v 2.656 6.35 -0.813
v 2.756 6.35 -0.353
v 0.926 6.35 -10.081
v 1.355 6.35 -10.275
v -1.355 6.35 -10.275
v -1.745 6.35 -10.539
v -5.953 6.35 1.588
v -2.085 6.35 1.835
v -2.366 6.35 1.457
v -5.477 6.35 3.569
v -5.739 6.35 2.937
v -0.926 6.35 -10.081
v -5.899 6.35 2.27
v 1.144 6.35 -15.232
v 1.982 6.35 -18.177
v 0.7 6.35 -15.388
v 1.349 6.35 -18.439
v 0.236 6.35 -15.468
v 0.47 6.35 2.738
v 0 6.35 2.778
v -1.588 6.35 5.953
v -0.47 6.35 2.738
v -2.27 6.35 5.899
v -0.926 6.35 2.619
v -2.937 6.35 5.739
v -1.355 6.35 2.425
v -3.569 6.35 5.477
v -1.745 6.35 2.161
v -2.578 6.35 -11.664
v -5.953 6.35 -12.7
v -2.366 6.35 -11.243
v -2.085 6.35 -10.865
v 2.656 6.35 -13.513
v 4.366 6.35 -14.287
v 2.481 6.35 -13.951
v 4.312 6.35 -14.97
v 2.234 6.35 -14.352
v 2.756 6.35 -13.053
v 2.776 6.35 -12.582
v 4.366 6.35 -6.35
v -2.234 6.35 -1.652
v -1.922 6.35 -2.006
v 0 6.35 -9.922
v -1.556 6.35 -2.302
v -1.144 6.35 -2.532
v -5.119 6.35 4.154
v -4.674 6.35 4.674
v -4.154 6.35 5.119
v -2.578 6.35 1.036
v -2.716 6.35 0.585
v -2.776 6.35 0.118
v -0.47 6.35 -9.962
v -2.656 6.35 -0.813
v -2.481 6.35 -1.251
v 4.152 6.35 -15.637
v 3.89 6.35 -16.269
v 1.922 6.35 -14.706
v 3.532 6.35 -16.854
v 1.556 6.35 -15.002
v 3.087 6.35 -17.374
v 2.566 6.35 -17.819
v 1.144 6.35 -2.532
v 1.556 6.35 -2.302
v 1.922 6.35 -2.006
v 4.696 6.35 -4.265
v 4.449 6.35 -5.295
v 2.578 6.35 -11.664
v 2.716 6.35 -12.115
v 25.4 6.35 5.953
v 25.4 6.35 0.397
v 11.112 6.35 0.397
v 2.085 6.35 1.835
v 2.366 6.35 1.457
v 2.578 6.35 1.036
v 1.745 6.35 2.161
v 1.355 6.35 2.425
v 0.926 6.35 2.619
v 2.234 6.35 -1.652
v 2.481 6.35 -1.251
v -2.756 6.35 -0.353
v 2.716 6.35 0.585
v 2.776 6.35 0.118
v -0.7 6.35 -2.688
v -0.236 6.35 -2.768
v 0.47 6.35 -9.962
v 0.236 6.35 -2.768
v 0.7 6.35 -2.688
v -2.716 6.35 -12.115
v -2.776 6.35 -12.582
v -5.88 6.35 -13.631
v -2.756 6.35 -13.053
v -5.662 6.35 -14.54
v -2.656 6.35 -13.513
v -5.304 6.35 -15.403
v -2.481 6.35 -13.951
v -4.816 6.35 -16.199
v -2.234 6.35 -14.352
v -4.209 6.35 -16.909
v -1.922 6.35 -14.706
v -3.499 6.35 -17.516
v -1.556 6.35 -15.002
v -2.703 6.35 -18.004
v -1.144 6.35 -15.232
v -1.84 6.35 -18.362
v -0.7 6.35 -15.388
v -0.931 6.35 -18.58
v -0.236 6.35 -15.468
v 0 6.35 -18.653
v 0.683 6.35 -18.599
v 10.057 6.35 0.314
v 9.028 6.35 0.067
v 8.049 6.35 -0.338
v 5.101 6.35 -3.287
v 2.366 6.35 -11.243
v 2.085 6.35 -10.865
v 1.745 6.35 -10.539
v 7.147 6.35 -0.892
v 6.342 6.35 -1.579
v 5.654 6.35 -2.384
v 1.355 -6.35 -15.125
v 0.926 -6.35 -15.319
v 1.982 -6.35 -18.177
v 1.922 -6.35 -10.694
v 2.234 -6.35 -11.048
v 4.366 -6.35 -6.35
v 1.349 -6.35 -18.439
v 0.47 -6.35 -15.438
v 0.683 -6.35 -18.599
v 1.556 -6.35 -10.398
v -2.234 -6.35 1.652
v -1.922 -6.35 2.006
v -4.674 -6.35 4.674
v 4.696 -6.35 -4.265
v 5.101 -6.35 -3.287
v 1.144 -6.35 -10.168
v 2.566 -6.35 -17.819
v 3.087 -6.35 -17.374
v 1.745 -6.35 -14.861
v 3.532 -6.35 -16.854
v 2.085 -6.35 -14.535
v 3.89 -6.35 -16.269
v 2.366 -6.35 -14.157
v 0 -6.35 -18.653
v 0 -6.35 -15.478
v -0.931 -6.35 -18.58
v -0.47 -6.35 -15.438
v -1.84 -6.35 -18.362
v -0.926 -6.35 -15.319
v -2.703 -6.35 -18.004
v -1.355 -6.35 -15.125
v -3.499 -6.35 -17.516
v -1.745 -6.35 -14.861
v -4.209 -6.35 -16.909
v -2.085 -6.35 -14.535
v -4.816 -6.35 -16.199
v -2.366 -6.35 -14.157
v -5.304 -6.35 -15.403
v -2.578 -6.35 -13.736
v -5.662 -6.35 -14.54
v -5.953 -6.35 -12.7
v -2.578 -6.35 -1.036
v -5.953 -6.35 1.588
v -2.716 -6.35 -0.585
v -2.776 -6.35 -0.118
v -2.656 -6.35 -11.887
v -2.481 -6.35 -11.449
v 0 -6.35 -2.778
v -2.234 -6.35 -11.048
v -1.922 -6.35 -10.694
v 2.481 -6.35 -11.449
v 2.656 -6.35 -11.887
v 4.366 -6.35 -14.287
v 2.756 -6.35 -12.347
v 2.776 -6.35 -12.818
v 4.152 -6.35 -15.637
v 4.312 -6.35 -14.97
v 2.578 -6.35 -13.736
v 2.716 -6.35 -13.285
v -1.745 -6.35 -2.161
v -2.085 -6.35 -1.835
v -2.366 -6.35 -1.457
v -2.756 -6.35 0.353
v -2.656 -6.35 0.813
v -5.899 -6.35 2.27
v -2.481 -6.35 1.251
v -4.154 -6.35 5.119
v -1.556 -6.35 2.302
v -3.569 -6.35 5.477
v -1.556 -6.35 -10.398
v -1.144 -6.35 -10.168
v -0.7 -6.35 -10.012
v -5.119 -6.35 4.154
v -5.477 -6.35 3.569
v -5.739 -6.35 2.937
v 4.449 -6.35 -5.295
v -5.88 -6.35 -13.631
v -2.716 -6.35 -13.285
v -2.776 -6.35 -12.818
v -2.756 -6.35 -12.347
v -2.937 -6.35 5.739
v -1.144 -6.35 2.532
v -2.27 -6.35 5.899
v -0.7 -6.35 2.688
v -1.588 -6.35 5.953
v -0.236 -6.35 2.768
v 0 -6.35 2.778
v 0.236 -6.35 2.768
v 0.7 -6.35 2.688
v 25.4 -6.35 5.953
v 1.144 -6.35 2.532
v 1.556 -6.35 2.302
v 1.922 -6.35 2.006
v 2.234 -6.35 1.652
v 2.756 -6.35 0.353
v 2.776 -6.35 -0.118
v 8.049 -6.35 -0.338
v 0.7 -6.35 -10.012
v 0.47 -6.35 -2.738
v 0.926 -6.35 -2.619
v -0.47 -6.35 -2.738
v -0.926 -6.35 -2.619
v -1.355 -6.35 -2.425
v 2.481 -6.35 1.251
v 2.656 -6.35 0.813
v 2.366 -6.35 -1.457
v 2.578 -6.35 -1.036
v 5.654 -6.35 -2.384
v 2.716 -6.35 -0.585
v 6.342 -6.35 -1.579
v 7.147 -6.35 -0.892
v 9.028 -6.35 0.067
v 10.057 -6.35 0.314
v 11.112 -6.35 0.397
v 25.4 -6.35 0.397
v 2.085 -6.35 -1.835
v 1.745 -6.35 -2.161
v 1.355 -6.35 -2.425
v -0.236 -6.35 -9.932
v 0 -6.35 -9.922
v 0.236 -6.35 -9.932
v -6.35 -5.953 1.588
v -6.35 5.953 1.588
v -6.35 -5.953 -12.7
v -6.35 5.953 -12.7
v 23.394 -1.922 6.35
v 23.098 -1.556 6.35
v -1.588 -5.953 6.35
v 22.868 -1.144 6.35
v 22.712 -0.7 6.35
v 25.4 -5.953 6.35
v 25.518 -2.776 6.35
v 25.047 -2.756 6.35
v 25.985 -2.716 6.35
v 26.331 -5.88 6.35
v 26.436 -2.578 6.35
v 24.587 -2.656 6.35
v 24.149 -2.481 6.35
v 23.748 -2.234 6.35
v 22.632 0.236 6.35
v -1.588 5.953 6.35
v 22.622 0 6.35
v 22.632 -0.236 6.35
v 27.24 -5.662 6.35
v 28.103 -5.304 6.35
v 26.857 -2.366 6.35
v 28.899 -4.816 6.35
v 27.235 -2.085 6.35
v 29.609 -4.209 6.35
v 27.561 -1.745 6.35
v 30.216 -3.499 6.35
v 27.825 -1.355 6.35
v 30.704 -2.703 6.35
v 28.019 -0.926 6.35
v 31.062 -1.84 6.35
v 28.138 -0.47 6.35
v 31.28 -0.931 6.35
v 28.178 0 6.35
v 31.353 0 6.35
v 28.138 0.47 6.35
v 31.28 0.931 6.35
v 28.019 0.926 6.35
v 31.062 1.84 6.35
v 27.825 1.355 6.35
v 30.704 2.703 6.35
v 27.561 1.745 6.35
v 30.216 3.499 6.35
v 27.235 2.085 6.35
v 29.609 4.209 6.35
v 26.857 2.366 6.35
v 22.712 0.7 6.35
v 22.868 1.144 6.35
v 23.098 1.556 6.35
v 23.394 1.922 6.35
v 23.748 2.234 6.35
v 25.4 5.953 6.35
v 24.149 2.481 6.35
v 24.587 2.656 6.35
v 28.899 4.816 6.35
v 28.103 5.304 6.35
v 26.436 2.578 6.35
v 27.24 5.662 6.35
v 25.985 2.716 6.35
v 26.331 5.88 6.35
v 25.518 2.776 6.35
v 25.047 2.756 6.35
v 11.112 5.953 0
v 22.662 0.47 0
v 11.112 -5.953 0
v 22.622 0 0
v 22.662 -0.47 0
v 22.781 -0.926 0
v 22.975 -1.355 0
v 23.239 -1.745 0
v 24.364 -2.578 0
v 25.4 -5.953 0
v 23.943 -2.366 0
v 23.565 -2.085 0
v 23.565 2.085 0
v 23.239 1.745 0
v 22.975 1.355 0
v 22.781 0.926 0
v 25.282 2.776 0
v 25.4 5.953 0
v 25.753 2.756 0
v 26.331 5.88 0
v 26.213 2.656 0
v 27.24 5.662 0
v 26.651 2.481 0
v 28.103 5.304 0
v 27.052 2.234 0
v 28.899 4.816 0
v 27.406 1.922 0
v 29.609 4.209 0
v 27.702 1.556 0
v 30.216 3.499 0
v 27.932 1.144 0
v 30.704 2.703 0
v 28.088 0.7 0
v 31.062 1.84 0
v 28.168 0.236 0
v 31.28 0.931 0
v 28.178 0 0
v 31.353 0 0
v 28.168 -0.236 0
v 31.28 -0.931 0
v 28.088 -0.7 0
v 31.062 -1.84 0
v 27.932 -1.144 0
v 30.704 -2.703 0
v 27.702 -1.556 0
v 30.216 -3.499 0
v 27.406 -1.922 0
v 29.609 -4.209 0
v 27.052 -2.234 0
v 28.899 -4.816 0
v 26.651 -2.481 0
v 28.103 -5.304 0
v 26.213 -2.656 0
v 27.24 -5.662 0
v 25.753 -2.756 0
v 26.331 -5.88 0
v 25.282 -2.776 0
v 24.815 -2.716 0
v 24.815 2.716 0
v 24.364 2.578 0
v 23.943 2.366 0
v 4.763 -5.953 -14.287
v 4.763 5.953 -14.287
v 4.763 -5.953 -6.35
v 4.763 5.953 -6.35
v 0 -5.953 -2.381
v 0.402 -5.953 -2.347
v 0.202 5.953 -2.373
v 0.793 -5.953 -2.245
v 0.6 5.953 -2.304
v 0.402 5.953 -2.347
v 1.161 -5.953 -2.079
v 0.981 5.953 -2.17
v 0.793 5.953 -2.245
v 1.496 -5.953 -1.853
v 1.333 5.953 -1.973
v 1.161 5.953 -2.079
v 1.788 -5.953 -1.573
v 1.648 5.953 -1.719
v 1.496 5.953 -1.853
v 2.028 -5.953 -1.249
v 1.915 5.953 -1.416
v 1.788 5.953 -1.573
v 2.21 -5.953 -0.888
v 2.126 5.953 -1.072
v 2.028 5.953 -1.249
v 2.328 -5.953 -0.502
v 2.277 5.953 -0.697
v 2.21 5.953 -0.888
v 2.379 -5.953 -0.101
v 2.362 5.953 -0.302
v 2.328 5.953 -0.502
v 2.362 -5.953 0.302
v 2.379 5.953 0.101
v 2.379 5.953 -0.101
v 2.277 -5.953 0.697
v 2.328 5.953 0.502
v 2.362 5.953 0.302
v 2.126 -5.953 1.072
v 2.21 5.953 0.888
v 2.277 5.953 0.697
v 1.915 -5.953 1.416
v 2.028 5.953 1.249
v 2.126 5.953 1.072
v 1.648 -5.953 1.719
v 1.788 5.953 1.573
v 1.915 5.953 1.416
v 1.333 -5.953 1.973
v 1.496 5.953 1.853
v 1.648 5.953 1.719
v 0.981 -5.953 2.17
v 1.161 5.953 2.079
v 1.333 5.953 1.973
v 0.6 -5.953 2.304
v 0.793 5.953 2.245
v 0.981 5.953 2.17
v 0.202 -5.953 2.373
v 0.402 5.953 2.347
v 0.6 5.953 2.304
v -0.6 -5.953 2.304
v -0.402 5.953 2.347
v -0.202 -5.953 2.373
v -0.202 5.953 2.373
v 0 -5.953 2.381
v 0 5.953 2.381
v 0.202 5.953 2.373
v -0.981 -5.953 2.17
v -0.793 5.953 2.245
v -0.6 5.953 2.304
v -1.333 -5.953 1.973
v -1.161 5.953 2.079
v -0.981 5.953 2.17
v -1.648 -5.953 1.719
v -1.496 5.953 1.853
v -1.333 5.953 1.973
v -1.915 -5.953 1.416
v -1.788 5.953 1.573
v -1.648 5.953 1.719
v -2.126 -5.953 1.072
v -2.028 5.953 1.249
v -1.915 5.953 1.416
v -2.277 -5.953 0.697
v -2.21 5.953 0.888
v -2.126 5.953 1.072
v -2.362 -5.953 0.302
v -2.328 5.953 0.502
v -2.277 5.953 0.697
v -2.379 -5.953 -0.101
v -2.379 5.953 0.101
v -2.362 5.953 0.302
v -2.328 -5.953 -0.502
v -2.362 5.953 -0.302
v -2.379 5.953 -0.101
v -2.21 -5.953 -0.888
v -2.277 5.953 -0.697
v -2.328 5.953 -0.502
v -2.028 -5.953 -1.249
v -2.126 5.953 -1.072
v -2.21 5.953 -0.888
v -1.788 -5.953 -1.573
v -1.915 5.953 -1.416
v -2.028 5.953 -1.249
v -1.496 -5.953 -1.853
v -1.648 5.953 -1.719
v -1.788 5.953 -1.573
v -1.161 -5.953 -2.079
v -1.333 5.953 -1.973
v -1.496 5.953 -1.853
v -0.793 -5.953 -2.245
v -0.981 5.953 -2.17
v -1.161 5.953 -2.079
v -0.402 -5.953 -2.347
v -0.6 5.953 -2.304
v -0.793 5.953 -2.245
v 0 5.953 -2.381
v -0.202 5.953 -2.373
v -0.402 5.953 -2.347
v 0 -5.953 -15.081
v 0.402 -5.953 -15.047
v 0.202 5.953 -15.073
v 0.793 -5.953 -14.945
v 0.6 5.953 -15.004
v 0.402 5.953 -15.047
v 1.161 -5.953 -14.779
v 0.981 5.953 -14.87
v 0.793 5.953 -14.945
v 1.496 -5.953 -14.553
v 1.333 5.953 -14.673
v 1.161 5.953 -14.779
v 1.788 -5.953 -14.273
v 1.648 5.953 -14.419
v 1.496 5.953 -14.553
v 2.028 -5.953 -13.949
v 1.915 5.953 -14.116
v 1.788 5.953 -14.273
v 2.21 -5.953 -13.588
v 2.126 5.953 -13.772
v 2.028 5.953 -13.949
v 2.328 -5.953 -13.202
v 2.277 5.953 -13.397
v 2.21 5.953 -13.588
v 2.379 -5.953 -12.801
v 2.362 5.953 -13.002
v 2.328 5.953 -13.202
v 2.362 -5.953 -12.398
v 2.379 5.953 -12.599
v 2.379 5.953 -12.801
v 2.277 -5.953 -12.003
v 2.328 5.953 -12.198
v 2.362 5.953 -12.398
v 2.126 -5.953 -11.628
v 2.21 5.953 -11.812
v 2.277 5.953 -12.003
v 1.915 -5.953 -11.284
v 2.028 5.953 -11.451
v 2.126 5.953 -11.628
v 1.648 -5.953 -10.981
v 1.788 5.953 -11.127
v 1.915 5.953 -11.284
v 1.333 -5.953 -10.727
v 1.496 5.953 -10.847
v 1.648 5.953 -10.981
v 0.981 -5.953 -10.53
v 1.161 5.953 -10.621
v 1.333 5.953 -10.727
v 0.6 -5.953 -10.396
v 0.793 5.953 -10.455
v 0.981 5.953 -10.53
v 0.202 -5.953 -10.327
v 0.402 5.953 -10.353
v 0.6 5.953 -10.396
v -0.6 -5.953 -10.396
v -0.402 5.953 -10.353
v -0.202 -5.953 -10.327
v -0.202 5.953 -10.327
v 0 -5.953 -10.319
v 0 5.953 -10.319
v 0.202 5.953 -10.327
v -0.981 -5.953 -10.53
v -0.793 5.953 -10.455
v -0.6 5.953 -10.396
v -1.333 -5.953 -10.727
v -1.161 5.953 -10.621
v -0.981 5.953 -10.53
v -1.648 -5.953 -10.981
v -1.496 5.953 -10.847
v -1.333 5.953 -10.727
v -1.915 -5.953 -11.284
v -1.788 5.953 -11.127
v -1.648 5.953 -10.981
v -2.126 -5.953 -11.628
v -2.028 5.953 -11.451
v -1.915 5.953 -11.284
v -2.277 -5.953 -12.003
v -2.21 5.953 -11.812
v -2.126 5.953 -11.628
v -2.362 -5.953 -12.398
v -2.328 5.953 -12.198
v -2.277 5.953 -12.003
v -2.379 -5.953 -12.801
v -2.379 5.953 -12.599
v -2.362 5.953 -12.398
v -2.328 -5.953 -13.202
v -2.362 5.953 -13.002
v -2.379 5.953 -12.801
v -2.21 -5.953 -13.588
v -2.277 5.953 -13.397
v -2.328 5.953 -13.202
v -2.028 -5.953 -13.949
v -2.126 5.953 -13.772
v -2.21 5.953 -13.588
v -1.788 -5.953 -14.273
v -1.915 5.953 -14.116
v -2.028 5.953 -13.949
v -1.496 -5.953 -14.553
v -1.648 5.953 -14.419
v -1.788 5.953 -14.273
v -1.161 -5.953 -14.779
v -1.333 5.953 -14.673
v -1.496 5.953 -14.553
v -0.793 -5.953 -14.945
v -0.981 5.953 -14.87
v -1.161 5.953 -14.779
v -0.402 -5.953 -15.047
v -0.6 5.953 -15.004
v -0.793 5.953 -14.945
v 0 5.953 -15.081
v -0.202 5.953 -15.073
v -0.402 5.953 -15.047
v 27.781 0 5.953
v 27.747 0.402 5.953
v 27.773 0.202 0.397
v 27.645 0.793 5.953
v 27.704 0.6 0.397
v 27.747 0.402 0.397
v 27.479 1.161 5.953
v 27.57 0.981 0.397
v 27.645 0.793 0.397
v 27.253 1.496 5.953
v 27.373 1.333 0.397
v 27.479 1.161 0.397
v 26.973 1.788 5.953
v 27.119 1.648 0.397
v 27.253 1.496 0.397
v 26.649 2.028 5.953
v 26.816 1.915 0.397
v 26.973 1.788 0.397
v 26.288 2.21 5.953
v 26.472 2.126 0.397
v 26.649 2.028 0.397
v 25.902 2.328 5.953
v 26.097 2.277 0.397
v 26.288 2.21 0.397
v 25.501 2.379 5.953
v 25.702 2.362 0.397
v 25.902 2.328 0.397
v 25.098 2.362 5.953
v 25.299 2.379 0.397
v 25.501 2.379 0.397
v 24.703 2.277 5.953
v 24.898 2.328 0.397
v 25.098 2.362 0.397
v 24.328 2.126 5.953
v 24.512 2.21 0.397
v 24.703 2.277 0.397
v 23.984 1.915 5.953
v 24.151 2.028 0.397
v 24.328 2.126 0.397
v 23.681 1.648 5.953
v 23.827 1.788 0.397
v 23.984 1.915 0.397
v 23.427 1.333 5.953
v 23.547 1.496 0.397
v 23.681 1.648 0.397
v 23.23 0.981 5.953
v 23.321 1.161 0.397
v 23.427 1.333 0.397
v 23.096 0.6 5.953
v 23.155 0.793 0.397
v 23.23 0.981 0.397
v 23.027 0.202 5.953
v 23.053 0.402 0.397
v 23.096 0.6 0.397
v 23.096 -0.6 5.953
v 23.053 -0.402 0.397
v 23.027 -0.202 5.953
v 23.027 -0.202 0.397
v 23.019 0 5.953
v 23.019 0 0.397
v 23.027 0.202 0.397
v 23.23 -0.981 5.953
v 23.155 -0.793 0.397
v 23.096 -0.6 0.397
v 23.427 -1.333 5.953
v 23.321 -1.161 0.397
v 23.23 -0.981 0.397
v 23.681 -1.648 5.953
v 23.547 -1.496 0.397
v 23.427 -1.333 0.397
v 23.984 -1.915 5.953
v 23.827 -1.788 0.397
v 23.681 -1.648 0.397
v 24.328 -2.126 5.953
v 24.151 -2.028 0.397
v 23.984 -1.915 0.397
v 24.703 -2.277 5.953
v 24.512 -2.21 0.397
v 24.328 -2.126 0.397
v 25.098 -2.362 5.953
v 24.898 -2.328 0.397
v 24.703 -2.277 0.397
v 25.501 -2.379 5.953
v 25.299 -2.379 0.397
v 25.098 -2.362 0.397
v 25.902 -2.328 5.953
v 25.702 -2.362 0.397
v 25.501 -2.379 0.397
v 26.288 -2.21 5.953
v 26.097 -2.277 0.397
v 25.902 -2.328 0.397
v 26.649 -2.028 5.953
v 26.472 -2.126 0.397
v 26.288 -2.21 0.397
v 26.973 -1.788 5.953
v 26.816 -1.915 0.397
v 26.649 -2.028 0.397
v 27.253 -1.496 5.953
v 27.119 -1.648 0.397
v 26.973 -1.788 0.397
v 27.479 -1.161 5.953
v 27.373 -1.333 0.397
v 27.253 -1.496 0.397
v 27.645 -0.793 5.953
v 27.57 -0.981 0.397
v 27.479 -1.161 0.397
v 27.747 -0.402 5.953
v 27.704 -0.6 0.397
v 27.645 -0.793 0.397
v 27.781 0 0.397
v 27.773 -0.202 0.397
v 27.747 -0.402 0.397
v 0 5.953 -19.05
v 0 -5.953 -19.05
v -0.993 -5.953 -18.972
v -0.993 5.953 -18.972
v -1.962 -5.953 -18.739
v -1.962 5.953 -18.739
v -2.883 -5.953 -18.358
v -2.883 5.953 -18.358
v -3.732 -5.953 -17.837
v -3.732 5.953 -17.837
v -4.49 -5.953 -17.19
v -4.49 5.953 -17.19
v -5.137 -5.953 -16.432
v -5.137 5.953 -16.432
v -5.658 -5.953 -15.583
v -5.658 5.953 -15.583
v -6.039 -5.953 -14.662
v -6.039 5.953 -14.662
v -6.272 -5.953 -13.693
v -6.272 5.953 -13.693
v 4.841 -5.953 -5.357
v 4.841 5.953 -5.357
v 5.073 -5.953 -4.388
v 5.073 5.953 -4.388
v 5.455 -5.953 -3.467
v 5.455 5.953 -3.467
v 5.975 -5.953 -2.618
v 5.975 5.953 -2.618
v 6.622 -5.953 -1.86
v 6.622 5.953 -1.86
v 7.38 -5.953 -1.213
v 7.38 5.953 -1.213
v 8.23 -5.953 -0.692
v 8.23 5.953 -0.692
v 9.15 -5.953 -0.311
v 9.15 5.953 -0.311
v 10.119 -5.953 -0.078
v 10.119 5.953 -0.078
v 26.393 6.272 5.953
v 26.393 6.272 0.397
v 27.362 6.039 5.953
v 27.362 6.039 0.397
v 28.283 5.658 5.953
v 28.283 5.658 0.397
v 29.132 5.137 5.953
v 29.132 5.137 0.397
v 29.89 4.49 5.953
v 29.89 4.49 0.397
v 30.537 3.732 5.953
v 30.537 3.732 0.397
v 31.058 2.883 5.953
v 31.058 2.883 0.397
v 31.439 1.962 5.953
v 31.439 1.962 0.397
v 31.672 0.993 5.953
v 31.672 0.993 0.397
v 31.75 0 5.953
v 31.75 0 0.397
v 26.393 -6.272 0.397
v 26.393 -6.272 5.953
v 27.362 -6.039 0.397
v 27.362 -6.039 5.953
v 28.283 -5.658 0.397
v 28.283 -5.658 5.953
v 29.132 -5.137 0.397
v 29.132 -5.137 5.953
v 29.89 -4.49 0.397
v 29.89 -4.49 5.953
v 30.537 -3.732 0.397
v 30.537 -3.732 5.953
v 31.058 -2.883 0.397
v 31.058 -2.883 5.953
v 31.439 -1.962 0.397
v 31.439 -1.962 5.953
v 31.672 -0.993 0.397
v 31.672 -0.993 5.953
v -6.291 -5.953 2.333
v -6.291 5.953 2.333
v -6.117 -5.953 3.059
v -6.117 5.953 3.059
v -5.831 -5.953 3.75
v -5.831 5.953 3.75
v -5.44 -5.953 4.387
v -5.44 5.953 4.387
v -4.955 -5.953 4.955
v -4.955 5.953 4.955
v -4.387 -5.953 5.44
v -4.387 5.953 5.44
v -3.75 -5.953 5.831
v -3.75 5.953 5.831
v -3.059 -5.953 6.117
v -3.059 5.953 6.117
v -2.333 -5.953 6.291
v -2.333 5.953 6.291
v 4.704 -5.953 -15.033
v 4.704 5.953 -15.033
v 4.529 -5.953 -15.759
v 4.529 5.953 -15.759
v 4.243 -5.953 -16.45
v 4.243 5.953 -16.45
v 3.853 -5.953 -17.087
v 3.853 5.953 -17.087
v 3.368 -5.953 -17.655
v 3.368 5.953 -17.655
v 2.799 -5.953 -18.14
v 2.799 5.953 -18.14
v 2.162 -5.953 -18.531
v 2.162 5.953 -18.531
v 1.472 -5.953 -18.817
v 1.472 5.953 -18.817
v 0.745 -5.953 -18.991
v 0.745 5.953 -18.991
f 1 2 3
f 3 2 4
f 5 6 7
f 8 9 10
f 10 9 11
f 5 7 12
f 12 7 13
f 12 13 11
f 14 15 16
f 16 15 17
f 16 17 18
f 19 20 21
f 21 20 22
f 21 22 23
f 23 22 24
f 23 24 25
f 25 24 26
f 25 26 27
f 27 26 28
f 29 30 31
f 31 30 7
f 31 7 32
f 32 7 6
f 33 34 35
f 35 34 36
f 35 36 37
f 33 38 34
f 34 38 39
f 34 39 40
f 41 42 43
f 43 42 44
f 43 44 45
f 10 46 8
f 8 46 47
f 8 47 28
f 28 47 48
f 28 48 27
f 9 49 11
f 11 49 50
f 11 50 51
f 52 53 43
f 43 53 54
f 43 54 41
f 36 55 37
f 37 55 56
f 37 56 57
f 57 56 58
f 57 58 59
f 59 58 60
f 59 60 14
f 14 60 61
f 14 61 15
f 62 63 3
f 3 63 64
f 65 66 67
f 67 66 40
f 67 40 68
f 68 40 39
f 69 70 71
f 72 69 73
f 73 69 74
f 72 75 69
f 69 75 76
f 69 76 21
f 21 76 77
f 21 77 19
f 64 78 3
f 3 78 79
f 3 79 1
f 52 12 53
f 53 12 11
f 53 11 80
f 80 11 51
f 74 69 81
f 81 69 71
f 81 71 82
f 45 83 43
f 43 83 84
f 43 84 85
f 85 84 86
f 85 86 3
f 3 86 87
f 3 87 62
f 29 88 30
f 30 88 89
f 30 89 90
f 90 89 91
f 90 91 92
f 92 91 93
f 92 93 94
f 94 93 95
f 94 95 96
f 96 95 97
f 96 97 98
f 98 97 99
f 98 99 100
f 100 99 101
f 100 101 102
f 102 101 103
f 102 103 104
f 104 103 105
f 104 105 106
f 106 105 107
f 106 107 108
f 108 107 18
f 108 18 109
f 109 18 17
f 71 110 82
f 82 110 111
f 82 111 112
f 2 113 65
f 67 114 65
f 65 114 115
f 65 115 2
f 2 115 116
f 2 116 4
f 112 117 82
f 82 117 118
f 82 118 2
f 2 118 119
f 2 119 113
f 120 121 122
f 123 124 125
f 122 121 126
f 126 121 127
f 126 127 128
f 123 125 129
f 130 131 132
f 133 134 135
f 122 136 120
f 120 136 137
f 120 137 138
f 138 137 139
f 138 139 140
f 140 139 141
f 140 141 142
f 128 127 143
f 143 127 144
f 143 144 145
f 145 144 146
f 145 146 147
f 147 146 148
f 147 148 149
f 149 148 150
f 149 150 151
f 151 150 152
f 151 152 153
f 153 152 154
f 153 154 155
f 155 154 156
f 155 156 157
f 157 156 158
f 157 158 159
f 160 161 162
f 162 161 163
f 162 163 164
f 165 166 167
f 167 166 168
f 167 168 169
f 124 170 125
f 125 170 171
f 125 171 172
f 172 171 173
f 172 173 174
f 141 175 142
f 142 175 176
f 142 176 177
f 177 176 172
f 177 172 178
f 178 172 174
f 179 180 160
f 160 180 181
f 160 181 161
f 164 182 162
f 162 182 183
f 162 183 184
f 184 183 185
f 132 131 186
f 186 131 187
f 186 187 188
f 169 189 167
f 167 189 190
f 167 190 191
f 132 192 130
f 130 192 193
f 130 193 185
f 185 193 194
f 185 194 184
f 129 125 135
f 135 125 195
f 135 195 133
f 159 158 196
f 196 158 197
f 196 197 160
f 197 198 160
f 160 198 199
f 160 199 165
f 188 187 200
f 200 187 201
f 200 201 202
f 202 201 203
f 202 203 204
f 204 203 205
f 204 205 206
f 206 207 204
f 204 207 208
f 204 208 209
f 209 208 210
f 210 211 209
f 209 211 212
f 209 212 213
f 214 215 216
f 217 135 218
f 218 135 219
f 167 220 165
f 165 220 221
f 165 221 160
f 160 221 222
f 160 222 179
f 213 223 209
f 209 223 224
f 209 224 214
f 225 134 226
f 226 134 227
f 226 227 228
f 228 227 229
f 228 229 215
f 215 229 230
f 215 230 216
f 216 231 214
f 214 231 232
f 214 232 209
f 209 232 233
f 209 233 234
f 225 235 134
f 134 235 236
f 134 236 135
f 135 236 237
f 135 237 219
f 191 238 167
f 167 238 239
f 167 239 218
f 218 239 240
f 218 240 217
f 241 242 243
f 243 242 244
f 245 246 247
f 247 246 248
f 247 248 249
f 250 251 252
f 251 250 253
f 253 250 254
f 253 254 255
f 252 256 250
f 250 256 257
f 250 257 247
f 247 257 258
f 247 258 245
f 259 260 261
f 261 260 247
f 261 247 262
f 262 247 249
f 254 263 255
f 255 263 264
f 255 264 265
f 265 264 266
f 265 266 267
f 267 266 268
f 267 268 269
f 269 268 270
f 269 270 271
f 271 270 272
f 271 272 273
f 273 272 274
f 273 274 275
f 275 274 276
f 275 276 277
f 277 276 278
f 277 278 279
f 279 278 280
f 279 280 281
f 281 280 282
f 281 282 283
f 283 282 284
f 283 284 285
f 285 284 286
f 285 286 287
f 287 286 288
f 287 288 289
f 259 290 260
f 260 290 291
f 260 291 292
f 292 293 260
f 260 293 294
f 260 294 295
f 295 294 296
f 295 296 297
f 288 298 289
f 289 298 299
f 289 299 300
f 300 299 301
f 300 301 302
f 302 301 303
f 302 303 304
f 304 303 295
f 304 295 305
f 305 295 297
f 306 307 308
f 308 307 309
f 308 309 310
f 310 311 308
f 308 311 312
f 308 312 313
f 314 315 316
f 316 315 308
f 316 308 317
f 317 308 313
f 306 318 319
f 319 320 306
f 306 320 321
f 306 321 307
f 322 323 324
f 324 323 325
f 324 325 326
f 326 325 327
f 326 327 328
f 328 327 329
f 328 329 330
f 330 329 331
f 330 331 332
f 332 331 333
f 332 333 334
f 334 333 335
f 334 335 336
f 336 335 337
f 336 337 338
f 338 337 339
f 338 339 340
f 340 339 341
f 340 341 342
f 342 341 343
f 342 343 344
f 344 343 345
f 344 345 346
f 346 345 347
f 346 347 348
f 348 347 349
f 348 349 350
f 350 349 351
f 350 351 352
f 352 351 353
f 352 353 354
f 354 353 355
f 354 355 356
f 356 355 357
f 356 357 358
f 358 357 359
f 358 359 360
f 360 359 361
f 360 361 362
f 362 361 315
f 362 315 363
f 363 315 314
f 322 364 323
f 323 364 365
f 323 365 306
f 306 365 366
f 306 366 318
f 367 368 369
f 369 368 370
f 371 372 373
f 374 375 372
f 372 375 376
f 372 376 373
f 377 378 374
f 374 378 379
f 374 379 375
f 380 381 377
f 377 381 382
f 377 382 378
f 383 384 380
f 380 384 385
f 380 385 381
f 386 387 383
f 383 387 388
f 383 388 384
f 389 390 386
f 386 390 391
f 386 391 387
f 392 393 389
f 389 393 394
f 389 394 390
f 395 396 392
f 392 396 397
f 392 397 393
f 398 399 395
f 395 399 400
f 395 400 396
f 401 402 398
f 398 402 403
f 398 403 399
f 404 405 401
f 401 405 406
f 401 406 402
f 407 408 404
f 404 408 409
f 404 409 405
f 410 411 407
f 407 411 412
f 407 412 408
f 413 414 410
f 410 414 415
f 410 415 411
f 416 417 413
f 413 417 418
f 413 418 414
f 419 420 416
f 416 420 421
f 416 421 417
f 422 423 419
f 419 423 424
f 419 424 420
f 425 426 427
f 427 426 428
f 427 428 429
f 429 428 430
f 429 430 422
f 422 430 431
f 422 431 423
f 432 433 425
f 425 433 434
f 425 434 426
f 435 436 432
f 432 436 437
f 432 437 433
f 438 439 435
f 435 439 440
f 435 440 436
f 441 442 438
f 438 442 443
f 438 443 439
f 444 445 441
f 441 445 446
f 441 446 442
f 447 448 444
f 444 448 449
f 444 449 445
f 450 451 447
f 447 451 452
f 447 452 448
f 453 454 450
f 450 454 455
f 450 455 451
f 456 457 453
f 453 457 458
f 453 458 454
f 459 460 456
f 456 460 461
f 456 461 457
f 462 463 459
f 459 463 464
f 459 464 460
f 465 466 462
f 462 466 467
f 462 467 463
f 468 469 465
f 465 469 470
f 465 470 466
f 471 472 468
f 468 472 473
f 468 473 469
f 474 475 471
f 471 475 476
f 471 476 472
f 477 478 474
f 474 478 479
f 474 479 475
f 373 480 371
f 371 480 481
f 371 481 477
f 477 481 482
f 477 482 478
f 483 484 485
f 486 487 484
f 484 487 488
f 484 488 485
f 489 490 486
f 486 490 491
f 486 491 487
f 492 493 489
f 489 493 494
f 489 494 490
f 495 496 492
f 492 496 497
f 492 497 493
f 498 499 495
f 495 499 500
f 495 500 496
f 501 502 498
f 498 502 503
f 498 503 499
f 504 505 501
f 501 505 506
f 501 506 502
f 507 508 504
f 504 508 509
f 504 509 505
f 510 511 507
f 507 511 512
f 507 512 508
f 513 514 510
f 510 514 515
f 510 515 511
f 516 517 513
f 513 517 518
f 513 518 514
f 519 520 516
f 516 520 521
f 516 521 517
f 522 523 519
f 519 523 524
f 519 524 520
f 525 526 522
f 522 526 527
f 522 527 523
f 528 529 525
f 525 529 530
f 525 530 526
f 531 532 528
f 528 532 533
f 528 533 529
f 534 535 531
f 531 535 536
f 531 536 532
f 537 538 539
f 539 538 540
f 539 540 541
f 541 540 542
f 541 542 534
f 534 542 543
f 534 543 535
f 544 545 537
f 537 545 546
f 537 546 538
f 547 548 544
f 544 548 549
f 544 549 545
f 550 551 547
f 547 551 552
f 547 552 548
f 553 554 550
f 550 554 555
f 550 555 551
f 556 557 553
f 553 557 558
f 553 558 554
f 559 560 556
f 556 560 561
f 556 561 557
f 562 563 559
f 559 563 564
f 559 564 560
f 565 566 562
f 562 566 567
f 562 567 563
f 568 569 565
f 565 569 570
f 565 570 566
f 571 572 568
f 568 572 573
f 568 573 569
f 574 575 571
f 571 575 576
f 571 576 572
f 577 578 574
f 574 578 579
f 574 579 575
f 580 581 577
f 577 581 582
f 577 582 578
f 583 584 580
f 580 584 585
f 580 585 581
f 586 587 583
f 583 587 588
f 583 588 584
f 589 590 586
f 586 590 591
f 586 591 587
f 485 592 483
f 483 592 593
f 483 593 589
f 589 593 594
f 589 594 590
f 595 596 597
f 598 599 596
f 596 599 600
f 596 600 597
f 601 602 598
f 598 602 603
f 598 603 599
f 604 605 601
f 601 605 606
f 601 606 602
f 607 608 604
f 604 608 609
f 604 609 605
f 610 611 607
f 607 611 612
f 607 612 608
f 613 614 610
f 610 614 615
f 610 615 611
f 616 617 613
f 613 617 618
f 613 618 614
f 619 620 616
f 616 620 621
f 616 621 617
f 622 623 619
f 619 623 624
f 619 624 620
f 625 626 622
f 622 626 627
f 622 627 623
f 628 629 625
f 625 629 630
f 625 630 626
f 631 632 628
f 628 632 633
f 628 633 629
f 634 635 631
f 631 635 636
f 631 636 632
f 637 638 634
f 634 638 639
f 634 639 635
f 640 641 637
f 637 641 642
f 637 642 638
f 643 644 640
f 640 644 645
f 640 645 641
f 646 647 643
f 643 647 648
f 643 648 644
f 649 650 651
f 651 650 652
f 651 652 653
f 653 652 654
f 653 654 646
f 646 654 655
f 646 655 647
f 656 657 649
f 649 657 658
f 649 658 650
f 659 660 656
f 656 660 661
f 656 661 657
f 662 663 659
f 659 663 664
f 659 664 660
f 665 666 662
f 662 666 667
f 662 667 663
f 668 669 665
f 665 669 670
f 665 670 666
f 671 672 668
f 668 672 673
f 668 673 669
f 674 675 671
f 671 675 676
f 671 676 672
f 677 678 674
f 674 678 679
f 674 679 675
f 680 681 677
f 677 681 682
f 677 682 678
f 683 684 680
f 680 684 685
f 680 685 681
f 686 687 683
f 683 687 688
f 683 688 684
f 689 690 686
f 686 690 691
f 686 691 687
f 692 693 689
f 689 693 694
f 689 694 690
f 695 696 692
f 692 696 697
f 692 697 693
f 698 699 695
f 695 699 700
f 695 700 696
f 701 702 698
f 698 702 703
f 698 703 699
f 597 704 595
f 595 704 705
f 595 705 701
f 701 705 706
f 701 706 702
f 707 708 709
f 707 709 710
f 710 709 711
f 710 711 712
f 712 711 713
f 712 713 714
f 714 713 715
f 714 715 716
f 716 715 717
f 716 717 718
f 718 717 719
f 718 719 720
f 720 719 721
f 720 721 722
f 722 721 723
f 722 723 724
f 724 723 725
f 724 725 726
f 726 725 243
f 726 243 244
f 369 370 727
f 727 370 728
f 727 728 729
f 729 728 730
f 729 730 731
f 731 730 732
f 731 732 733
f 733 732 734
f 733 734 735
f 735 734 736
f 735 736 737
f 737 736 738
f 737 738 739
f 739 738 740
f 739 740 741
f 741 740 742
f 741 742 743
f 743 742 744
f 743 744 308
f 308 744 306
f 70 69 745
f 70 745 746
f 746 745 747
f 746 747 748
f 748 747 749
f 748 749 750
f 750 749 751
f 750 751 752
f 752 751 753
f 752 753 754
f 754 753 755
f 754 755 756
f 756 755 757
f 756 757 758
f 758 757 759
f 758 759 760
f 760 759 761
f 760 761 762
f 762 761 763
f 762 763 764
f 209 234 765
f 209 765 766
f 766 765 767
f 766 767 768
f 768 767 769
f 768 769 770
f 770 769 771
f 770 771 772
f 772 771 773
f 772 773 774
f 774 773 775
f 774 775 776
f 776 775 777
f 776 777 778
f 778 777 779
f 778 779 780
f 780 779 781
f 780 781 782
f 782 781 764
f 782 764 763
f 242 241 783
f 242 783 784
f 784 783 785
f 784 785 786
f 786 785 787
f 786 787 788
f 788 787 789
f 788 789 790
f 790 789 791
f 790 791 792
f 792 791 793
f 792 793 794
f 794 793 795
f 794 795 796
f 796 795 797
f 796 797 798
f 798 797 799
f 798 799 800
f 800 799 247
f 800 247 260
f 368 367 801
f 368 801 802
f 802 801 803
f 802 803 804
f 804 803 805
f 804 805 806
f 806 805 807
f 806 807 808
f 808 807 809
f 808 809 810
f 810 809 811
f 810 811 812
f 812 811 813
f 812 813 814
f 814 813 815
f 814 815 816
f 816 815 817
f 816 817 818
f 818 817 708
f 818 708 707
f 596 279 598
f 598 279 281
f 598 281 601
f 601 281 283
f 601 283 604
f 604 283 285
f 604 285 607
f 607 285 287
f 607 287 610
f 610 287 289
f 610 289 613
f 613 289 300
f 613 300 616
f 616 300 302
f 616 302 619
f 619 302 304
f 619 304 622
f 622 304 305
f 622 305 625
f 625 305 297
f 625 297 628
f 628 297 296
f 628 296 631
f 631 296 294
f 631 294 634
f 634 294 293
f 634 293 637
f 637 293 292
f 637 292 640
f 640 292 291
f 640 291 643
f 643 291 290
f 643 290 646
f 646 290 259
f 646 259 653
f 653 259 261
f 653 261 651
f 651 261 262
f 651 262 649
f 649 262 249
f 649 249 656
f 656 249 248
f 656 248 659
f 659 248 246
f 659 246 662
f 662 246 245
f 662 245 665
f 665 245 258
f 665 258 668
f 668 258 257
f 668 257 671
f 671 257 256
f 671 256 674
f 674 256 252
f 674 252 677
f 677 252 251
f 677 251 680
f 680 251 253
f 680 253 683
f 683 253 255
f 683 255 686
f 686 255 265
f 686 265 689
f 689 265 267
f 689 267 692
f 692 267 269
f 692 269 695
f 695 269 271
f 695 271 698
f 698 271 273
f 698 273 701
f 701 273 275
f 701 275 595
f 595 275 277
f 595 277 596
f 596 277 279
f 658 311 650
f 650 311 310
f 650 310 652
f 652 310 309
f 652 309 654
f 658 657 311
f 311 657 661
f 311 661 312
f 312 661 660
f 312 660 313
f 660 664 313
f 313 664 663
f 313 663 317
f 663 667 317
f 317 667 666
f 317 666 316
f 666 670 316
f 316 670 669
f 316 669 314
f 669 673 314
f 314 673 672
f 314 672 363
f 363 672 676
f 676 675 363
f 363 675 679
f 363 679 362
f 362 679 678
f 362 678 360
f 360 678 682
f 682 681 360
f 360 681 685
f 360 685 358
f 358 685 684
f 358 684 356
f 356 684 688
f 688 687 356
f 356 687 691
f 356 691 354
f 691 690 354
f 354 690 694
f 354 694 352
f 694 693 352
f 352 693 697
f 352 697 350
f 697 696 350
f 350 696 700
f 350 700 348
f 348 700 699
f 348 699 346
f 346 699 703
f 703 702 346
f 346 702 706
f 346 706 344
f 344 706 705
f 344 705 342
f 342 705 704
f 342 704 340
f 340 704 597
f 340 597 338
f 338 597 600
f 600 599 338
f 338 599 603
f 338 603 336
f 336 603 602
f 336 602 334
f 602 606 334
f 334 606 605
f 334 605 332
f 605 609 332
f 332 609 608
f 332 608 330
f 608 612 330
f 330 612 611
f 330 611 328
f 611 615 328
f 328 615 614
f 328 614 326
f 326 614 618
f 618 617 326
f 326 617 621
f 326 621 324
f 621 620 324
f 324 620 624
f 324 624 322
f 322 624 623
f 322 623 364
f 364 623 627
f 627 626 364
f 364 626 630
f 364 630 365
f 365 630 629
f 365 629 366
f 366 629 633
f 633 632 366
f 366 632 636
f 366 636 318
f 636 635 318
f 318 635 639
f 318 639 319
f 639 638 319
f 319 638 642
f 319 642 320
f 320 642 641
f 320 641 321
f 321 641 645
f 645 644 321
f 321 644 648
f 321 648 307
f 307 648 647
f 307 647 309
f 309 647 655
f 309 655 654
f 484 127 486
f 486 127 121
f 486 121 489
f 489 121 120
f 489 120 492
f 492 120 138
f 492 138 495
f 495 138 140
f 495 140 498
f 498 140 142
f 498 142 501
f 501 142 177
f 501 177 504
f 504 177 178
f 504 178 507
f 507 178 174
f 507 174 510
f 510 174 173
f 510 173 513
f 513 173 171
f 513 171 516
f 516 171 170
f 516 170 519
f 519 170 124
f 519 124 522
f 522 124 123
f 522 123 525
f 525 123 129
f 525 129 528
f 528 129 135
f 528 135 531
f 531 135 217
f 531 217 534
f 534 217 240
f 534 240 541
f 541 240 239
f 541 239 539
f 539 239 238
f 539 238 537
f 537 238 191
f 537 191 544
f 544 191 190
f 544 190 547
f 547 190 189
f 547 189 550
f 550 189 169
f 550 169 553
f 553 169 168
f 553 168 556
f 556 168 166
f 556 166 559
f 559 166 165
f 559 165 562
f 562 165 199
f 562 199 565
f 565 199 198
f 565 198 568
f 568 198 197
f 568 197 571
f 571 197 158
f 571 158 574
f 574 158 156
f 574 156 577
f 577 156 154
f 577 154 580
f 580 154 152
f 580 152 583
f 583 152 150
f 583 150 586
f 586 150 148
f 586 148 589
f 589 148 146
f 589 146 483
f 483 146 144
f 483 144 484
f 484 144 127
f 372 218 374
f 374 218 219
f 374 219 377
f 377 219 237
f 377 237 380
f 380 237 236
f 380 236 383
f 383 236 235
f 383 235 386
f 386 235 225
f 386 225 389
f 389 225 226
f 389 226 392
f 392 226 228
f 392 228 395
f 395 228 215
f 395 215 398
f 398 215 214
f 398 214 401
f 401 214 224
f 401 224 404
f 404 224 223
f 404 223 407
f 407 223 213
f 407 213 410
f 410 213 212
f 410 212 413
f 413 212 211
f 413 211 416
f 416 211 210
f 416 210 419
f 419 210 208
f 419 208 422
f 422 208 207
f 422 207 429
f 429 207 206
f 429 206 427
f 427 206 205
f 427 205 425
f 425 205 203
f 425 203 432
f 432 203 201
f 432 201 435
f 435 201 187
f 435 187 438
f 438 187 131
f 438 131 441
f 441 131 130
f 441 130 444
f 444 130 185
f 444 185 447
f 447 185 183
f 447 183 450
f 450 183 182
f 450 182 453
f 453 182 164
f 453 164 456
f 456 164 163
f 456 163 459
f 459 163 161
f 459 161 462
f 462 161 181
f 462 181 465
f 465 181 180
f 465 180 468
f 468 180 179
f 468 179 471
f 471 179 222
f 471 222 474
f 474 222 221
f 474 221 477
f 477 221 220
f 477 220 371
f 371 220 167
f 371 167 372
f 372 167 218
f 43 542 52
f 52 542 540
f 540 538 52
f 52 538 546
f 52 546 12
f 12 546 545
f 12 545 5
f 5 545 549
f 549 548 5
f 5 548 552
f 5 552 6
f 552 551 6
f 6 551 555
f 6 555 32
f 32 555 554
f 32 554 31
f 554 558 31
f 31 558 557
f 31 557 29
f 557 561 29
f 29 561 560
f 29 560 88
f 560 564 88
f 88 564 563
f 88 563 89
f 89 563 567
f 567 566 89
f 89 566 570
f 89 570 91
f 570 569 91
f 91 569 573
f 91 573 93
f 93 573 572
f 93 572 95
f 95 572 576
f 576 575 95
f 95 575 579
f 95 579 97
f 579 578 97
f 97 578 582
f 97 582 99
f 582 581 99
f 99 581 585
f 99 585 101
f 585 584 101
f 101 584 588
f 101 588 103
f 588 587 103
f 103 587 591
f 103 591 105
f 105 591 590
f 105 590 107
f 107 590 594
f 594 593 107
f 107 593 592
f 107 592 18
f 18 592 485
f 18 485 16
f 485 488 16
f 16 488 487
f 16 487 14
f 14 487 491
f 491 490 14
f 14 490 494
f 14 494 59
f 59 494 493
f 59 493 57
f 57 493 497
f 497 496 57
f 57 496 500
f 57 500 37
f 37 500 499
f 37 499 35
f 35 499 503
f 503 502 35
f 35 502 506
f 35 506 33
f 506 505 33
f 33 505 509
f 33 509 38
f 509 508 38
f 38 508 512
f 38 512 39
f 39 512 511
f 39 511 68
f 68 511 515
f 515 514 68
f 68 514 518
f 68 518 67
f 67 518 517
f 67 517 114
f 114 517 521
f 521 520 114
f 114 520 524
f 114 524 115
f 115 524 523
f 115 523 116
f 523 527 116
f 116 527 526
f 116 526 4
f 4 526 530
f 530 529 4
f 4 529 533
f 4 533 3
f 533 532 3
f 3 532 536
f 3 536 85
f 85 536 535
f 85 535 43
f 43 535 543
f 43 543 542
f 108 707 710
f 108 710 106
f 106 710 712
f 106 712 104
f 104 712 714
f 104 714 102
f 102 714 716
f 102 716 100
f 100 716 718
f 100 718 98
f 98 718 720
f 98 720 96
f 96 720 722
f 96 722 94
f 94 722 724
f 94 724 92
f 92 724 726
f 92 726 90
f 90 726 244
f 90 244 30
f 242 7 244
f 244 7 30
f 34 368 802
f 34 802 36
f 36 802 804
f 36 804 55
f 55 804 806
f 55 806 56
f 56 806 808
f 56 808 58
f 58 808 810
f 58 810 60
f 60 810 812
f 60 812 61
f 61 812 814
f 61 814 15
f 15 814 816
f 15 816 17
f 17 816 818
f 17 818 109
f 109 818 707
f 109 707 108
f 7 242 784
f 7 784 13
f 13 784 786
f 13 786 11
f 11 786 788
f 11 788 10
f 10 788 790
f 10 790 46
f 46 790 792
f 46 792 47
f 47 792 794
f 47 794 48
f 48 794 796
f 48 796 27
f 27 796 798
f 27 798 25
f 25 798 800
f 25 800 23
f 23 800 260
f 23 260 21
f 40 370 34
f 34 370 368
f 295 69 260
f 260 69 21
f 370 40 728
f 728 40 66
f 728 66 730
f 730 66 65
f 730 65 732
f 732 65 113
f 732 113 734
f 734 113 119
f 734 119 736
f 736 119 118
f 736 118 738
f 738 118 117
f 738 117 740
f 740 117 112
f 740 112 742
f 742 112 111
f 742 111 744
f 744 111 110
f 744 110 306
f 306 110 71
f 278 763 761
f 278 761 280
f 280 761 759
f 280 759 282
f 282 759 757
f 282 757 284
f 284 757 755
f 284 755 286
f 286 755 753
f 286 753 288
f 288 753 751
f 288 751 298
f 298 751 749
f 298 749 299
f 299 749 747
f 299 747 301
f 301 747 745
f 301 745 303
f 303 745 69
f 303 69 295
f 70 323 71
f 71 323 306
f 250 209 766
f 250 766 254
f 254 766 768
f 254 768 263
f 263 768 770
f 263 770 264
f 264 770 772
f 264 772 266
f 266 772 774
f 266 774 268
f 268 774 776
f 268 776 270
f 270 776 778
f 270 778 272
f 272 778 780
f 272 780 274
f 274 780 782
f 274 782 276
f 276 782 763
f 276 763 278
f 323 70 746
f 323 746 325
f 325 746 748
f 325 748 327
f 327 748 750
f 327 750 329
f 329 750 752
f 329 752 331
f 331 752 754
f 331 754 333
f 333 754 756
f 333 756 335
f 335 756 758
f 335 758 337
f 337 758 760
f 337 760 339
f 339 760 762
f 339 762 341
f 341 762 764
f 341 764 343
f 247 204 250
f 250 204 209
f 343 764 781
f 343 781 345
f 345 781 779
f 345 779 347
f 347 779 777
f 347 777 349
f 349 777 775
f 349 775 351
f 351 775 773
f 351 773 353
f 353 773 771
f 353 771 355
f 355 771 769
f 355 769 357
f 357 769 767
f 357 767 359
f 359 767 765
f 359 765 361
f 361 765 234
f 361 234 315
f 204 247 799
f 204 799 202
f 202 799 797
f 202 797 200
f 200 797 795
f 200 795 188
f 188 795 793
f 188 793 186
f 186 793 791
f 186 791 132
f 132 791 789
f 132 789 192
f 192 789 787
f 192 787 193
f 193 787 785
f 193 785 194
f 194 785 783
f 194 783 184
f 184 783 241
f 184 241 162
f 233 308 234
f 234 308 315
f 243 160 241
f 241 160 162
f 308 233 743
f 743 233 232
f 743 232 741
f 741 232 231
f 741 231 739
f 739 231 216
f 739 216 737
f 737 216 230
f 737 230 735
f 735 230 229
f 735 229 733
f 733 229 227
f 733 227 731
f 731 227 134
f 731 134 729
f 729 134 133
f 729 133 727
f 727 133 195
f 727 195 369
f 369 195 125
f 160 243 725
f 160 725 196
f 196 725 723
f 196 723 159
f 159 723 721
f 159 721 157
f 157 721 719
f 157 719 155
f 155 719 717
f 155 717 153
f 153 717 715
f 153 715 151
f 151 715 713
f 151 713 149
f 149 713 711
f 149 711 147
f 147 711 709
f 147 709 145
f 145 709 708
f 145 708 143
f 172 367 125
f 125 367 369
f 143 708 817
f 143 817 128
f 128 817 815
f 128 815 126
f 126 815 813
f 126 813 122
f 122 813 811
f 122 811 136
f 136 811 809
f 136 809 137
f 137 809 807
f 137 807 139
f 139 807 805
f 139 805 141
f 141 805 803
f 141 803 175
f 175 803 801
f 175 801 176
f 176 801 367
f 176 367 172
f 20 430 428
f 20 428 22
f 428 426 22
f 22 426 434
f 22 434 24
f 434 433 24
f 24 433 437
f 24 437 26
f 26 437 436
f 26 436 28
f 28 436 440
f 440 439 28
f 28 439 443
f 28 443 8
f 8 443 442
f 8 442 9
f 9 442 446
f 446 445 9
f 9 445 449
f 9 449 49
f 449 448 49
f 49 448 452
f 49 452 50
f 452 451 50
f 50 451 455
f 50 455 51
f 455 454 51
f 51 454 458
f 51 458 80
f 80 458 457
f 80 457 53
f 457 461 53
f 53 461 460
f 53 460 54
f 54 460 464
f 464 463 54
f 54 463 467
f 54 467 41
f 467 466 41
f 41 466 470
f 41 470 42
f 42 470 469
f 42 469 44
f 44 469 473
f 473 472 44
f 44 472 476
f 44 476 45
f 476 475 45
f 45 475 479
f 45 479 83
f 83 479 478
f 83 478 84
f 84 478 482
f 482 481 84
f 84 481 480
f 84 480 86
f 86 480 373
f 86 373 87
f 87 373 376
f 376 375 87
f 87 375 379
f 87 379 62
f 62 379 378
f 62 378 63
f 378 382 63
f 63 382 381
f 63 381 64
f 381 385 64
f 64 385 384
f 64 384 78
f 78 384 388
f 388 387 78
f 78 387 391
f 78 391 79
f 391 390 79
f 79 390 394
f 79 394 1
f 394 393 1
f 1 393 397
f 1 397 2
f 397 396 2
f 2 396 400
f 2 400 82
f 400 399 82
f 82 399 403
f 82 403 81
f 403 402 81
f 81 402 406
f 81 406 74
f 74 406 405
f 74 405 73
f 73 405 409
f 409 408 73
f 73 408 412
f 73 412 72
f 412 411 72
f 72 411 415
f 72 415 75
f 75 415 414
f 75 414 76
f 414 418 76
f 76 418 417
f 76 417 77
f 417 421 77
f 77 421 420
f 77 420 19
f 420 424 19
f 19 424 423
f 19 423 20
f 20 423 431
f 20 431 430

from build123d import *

# Parameters (mm, degrees)
SKETCH1_R               = 2.38125
BOSS_EXTRUDE1_DEPTH     = 6.35
CUT_EXTRUDE1_DEPTH      = 42.152703435
CUT_EXTRUDE1_DEPTH_BACK = 42.152703435
SKETCH2_R               = 2.38125
FILLET1_R               = 6.35
FILLET2_R               = 4.7625
CHAMFER1_SIZE           = 0.396875


with BuildPart() as part:
    # Sketch1 → Boss-Extrude1 (new, symmetric)
    with BuildSketch(Plane(origin=(0, 0, 0), x_dir=(1, 0, 0), z_dir=(0, 1, 0))):
        Polygon((-6.35, -6.35), (31.75, -6.35), (31.75, 0), (4.7625, 0), (4.7625, 19.05), (-6.35, 19.05), align=None)
        with Locations(Location((0, 0, 0), (0, 0, 270))):
            Circle(SKETCH1_R, mode=Mode.SUBTRACT)
        with Locations(Location((0, 12.7, 0), (0, 0, 270))):
            Circle(SKETCH1_R, mode=Mode.SUBTRACT)
    extrude(amount=BOSS_EXTRUDE1_DEPTH, both=True)

    # Sketch2 → Cut-Extrude1 (cut, two sides: drawn at the far end of the back side and taken through both)
    with BuildSketch(Plane.XY.offset(6.35).offset(-CUT_EXTRUDE1_DEPTH_BACK)):
        with Locations((25.4, 0)):
            Circle(SKETCH2_R)
    extrude(amount=CUT_EXTRUDE1_DEPTH + CUT_EXTRUDE1_DEPTH_BACK, mode=Mode.SUBTRACT)

    # Fillet1
    fillet1_edges = [part.edges().sort_by_distance(p)[0] for p in [
        (-6.35, 0, -19.05),
        (4.7625, 0, 0),
        (31.75, -6.35, 3.175),
        (31.75, 6.35, 3.175),
    ]]
    fillet(fillet1_edges, radius=FILLET1_R - 0.0001)  # a hair under: the kernel refuses the full size

    # Fillet2
    fillet2_edges = [part.edges().sort_by_distance(p)[0] for p in [
        (-6.35, 0, 6.35),
        (4.7625, 0, -19.05),
    ]]
    fillet(fillet2_edges, radius=FILLET2_R)

    # Chamfer1
    chamfer1_edges = [part.edges().sort_by_distance(p)[0] for p in [
        (0, -6.35, -2.38125),
        (0, 6.35, -2.38125),
        (0, -6.35, -15.08125),
        (0, 6.35, -15.08125),
        (23.01875, 0, 0),
        (23.01875, 0, 6.35),
        (-6.35, -6.35, -5.5563),
        (-6.35, 6.35, -5.5563),
        (4.7625, -6.35, -10.3187),
        (18.25625, -6.35, 0),
        (-4.49015735, -6.35, -17.19015735),
        (18.25625, 6.35, 0),
        (4.7625, 6.35, -10.3187),
        (-4.49015735, 6.35, -17.19015735),
        (29.89015735, 4.49015735, 0),
        (29.89015735, -4.49015735, 0),
        (29.89015735, 4.49015735, 6.35),
        (29.89015735, -4.49015735, 6.35),
        (6.62234265, -6.35, -1.85984265),
        (6.62234265, 6.35, -1.85984265),
        (11.9063, -6.35, 6.35),
        (11.9063, 6.35, 6.35),
        (3.367596045, -6.35, -17.655096045),
        (-4.955096045, -6.35, 4.955096045),
        (3.367596045, 6.35, -17.655096045),
        (-4.955096045, 6.35, 4.955096045),
    ]]
    chamfer(chamfer1_edges, length=CHAMFER1_SIZE)


solid = part.part
